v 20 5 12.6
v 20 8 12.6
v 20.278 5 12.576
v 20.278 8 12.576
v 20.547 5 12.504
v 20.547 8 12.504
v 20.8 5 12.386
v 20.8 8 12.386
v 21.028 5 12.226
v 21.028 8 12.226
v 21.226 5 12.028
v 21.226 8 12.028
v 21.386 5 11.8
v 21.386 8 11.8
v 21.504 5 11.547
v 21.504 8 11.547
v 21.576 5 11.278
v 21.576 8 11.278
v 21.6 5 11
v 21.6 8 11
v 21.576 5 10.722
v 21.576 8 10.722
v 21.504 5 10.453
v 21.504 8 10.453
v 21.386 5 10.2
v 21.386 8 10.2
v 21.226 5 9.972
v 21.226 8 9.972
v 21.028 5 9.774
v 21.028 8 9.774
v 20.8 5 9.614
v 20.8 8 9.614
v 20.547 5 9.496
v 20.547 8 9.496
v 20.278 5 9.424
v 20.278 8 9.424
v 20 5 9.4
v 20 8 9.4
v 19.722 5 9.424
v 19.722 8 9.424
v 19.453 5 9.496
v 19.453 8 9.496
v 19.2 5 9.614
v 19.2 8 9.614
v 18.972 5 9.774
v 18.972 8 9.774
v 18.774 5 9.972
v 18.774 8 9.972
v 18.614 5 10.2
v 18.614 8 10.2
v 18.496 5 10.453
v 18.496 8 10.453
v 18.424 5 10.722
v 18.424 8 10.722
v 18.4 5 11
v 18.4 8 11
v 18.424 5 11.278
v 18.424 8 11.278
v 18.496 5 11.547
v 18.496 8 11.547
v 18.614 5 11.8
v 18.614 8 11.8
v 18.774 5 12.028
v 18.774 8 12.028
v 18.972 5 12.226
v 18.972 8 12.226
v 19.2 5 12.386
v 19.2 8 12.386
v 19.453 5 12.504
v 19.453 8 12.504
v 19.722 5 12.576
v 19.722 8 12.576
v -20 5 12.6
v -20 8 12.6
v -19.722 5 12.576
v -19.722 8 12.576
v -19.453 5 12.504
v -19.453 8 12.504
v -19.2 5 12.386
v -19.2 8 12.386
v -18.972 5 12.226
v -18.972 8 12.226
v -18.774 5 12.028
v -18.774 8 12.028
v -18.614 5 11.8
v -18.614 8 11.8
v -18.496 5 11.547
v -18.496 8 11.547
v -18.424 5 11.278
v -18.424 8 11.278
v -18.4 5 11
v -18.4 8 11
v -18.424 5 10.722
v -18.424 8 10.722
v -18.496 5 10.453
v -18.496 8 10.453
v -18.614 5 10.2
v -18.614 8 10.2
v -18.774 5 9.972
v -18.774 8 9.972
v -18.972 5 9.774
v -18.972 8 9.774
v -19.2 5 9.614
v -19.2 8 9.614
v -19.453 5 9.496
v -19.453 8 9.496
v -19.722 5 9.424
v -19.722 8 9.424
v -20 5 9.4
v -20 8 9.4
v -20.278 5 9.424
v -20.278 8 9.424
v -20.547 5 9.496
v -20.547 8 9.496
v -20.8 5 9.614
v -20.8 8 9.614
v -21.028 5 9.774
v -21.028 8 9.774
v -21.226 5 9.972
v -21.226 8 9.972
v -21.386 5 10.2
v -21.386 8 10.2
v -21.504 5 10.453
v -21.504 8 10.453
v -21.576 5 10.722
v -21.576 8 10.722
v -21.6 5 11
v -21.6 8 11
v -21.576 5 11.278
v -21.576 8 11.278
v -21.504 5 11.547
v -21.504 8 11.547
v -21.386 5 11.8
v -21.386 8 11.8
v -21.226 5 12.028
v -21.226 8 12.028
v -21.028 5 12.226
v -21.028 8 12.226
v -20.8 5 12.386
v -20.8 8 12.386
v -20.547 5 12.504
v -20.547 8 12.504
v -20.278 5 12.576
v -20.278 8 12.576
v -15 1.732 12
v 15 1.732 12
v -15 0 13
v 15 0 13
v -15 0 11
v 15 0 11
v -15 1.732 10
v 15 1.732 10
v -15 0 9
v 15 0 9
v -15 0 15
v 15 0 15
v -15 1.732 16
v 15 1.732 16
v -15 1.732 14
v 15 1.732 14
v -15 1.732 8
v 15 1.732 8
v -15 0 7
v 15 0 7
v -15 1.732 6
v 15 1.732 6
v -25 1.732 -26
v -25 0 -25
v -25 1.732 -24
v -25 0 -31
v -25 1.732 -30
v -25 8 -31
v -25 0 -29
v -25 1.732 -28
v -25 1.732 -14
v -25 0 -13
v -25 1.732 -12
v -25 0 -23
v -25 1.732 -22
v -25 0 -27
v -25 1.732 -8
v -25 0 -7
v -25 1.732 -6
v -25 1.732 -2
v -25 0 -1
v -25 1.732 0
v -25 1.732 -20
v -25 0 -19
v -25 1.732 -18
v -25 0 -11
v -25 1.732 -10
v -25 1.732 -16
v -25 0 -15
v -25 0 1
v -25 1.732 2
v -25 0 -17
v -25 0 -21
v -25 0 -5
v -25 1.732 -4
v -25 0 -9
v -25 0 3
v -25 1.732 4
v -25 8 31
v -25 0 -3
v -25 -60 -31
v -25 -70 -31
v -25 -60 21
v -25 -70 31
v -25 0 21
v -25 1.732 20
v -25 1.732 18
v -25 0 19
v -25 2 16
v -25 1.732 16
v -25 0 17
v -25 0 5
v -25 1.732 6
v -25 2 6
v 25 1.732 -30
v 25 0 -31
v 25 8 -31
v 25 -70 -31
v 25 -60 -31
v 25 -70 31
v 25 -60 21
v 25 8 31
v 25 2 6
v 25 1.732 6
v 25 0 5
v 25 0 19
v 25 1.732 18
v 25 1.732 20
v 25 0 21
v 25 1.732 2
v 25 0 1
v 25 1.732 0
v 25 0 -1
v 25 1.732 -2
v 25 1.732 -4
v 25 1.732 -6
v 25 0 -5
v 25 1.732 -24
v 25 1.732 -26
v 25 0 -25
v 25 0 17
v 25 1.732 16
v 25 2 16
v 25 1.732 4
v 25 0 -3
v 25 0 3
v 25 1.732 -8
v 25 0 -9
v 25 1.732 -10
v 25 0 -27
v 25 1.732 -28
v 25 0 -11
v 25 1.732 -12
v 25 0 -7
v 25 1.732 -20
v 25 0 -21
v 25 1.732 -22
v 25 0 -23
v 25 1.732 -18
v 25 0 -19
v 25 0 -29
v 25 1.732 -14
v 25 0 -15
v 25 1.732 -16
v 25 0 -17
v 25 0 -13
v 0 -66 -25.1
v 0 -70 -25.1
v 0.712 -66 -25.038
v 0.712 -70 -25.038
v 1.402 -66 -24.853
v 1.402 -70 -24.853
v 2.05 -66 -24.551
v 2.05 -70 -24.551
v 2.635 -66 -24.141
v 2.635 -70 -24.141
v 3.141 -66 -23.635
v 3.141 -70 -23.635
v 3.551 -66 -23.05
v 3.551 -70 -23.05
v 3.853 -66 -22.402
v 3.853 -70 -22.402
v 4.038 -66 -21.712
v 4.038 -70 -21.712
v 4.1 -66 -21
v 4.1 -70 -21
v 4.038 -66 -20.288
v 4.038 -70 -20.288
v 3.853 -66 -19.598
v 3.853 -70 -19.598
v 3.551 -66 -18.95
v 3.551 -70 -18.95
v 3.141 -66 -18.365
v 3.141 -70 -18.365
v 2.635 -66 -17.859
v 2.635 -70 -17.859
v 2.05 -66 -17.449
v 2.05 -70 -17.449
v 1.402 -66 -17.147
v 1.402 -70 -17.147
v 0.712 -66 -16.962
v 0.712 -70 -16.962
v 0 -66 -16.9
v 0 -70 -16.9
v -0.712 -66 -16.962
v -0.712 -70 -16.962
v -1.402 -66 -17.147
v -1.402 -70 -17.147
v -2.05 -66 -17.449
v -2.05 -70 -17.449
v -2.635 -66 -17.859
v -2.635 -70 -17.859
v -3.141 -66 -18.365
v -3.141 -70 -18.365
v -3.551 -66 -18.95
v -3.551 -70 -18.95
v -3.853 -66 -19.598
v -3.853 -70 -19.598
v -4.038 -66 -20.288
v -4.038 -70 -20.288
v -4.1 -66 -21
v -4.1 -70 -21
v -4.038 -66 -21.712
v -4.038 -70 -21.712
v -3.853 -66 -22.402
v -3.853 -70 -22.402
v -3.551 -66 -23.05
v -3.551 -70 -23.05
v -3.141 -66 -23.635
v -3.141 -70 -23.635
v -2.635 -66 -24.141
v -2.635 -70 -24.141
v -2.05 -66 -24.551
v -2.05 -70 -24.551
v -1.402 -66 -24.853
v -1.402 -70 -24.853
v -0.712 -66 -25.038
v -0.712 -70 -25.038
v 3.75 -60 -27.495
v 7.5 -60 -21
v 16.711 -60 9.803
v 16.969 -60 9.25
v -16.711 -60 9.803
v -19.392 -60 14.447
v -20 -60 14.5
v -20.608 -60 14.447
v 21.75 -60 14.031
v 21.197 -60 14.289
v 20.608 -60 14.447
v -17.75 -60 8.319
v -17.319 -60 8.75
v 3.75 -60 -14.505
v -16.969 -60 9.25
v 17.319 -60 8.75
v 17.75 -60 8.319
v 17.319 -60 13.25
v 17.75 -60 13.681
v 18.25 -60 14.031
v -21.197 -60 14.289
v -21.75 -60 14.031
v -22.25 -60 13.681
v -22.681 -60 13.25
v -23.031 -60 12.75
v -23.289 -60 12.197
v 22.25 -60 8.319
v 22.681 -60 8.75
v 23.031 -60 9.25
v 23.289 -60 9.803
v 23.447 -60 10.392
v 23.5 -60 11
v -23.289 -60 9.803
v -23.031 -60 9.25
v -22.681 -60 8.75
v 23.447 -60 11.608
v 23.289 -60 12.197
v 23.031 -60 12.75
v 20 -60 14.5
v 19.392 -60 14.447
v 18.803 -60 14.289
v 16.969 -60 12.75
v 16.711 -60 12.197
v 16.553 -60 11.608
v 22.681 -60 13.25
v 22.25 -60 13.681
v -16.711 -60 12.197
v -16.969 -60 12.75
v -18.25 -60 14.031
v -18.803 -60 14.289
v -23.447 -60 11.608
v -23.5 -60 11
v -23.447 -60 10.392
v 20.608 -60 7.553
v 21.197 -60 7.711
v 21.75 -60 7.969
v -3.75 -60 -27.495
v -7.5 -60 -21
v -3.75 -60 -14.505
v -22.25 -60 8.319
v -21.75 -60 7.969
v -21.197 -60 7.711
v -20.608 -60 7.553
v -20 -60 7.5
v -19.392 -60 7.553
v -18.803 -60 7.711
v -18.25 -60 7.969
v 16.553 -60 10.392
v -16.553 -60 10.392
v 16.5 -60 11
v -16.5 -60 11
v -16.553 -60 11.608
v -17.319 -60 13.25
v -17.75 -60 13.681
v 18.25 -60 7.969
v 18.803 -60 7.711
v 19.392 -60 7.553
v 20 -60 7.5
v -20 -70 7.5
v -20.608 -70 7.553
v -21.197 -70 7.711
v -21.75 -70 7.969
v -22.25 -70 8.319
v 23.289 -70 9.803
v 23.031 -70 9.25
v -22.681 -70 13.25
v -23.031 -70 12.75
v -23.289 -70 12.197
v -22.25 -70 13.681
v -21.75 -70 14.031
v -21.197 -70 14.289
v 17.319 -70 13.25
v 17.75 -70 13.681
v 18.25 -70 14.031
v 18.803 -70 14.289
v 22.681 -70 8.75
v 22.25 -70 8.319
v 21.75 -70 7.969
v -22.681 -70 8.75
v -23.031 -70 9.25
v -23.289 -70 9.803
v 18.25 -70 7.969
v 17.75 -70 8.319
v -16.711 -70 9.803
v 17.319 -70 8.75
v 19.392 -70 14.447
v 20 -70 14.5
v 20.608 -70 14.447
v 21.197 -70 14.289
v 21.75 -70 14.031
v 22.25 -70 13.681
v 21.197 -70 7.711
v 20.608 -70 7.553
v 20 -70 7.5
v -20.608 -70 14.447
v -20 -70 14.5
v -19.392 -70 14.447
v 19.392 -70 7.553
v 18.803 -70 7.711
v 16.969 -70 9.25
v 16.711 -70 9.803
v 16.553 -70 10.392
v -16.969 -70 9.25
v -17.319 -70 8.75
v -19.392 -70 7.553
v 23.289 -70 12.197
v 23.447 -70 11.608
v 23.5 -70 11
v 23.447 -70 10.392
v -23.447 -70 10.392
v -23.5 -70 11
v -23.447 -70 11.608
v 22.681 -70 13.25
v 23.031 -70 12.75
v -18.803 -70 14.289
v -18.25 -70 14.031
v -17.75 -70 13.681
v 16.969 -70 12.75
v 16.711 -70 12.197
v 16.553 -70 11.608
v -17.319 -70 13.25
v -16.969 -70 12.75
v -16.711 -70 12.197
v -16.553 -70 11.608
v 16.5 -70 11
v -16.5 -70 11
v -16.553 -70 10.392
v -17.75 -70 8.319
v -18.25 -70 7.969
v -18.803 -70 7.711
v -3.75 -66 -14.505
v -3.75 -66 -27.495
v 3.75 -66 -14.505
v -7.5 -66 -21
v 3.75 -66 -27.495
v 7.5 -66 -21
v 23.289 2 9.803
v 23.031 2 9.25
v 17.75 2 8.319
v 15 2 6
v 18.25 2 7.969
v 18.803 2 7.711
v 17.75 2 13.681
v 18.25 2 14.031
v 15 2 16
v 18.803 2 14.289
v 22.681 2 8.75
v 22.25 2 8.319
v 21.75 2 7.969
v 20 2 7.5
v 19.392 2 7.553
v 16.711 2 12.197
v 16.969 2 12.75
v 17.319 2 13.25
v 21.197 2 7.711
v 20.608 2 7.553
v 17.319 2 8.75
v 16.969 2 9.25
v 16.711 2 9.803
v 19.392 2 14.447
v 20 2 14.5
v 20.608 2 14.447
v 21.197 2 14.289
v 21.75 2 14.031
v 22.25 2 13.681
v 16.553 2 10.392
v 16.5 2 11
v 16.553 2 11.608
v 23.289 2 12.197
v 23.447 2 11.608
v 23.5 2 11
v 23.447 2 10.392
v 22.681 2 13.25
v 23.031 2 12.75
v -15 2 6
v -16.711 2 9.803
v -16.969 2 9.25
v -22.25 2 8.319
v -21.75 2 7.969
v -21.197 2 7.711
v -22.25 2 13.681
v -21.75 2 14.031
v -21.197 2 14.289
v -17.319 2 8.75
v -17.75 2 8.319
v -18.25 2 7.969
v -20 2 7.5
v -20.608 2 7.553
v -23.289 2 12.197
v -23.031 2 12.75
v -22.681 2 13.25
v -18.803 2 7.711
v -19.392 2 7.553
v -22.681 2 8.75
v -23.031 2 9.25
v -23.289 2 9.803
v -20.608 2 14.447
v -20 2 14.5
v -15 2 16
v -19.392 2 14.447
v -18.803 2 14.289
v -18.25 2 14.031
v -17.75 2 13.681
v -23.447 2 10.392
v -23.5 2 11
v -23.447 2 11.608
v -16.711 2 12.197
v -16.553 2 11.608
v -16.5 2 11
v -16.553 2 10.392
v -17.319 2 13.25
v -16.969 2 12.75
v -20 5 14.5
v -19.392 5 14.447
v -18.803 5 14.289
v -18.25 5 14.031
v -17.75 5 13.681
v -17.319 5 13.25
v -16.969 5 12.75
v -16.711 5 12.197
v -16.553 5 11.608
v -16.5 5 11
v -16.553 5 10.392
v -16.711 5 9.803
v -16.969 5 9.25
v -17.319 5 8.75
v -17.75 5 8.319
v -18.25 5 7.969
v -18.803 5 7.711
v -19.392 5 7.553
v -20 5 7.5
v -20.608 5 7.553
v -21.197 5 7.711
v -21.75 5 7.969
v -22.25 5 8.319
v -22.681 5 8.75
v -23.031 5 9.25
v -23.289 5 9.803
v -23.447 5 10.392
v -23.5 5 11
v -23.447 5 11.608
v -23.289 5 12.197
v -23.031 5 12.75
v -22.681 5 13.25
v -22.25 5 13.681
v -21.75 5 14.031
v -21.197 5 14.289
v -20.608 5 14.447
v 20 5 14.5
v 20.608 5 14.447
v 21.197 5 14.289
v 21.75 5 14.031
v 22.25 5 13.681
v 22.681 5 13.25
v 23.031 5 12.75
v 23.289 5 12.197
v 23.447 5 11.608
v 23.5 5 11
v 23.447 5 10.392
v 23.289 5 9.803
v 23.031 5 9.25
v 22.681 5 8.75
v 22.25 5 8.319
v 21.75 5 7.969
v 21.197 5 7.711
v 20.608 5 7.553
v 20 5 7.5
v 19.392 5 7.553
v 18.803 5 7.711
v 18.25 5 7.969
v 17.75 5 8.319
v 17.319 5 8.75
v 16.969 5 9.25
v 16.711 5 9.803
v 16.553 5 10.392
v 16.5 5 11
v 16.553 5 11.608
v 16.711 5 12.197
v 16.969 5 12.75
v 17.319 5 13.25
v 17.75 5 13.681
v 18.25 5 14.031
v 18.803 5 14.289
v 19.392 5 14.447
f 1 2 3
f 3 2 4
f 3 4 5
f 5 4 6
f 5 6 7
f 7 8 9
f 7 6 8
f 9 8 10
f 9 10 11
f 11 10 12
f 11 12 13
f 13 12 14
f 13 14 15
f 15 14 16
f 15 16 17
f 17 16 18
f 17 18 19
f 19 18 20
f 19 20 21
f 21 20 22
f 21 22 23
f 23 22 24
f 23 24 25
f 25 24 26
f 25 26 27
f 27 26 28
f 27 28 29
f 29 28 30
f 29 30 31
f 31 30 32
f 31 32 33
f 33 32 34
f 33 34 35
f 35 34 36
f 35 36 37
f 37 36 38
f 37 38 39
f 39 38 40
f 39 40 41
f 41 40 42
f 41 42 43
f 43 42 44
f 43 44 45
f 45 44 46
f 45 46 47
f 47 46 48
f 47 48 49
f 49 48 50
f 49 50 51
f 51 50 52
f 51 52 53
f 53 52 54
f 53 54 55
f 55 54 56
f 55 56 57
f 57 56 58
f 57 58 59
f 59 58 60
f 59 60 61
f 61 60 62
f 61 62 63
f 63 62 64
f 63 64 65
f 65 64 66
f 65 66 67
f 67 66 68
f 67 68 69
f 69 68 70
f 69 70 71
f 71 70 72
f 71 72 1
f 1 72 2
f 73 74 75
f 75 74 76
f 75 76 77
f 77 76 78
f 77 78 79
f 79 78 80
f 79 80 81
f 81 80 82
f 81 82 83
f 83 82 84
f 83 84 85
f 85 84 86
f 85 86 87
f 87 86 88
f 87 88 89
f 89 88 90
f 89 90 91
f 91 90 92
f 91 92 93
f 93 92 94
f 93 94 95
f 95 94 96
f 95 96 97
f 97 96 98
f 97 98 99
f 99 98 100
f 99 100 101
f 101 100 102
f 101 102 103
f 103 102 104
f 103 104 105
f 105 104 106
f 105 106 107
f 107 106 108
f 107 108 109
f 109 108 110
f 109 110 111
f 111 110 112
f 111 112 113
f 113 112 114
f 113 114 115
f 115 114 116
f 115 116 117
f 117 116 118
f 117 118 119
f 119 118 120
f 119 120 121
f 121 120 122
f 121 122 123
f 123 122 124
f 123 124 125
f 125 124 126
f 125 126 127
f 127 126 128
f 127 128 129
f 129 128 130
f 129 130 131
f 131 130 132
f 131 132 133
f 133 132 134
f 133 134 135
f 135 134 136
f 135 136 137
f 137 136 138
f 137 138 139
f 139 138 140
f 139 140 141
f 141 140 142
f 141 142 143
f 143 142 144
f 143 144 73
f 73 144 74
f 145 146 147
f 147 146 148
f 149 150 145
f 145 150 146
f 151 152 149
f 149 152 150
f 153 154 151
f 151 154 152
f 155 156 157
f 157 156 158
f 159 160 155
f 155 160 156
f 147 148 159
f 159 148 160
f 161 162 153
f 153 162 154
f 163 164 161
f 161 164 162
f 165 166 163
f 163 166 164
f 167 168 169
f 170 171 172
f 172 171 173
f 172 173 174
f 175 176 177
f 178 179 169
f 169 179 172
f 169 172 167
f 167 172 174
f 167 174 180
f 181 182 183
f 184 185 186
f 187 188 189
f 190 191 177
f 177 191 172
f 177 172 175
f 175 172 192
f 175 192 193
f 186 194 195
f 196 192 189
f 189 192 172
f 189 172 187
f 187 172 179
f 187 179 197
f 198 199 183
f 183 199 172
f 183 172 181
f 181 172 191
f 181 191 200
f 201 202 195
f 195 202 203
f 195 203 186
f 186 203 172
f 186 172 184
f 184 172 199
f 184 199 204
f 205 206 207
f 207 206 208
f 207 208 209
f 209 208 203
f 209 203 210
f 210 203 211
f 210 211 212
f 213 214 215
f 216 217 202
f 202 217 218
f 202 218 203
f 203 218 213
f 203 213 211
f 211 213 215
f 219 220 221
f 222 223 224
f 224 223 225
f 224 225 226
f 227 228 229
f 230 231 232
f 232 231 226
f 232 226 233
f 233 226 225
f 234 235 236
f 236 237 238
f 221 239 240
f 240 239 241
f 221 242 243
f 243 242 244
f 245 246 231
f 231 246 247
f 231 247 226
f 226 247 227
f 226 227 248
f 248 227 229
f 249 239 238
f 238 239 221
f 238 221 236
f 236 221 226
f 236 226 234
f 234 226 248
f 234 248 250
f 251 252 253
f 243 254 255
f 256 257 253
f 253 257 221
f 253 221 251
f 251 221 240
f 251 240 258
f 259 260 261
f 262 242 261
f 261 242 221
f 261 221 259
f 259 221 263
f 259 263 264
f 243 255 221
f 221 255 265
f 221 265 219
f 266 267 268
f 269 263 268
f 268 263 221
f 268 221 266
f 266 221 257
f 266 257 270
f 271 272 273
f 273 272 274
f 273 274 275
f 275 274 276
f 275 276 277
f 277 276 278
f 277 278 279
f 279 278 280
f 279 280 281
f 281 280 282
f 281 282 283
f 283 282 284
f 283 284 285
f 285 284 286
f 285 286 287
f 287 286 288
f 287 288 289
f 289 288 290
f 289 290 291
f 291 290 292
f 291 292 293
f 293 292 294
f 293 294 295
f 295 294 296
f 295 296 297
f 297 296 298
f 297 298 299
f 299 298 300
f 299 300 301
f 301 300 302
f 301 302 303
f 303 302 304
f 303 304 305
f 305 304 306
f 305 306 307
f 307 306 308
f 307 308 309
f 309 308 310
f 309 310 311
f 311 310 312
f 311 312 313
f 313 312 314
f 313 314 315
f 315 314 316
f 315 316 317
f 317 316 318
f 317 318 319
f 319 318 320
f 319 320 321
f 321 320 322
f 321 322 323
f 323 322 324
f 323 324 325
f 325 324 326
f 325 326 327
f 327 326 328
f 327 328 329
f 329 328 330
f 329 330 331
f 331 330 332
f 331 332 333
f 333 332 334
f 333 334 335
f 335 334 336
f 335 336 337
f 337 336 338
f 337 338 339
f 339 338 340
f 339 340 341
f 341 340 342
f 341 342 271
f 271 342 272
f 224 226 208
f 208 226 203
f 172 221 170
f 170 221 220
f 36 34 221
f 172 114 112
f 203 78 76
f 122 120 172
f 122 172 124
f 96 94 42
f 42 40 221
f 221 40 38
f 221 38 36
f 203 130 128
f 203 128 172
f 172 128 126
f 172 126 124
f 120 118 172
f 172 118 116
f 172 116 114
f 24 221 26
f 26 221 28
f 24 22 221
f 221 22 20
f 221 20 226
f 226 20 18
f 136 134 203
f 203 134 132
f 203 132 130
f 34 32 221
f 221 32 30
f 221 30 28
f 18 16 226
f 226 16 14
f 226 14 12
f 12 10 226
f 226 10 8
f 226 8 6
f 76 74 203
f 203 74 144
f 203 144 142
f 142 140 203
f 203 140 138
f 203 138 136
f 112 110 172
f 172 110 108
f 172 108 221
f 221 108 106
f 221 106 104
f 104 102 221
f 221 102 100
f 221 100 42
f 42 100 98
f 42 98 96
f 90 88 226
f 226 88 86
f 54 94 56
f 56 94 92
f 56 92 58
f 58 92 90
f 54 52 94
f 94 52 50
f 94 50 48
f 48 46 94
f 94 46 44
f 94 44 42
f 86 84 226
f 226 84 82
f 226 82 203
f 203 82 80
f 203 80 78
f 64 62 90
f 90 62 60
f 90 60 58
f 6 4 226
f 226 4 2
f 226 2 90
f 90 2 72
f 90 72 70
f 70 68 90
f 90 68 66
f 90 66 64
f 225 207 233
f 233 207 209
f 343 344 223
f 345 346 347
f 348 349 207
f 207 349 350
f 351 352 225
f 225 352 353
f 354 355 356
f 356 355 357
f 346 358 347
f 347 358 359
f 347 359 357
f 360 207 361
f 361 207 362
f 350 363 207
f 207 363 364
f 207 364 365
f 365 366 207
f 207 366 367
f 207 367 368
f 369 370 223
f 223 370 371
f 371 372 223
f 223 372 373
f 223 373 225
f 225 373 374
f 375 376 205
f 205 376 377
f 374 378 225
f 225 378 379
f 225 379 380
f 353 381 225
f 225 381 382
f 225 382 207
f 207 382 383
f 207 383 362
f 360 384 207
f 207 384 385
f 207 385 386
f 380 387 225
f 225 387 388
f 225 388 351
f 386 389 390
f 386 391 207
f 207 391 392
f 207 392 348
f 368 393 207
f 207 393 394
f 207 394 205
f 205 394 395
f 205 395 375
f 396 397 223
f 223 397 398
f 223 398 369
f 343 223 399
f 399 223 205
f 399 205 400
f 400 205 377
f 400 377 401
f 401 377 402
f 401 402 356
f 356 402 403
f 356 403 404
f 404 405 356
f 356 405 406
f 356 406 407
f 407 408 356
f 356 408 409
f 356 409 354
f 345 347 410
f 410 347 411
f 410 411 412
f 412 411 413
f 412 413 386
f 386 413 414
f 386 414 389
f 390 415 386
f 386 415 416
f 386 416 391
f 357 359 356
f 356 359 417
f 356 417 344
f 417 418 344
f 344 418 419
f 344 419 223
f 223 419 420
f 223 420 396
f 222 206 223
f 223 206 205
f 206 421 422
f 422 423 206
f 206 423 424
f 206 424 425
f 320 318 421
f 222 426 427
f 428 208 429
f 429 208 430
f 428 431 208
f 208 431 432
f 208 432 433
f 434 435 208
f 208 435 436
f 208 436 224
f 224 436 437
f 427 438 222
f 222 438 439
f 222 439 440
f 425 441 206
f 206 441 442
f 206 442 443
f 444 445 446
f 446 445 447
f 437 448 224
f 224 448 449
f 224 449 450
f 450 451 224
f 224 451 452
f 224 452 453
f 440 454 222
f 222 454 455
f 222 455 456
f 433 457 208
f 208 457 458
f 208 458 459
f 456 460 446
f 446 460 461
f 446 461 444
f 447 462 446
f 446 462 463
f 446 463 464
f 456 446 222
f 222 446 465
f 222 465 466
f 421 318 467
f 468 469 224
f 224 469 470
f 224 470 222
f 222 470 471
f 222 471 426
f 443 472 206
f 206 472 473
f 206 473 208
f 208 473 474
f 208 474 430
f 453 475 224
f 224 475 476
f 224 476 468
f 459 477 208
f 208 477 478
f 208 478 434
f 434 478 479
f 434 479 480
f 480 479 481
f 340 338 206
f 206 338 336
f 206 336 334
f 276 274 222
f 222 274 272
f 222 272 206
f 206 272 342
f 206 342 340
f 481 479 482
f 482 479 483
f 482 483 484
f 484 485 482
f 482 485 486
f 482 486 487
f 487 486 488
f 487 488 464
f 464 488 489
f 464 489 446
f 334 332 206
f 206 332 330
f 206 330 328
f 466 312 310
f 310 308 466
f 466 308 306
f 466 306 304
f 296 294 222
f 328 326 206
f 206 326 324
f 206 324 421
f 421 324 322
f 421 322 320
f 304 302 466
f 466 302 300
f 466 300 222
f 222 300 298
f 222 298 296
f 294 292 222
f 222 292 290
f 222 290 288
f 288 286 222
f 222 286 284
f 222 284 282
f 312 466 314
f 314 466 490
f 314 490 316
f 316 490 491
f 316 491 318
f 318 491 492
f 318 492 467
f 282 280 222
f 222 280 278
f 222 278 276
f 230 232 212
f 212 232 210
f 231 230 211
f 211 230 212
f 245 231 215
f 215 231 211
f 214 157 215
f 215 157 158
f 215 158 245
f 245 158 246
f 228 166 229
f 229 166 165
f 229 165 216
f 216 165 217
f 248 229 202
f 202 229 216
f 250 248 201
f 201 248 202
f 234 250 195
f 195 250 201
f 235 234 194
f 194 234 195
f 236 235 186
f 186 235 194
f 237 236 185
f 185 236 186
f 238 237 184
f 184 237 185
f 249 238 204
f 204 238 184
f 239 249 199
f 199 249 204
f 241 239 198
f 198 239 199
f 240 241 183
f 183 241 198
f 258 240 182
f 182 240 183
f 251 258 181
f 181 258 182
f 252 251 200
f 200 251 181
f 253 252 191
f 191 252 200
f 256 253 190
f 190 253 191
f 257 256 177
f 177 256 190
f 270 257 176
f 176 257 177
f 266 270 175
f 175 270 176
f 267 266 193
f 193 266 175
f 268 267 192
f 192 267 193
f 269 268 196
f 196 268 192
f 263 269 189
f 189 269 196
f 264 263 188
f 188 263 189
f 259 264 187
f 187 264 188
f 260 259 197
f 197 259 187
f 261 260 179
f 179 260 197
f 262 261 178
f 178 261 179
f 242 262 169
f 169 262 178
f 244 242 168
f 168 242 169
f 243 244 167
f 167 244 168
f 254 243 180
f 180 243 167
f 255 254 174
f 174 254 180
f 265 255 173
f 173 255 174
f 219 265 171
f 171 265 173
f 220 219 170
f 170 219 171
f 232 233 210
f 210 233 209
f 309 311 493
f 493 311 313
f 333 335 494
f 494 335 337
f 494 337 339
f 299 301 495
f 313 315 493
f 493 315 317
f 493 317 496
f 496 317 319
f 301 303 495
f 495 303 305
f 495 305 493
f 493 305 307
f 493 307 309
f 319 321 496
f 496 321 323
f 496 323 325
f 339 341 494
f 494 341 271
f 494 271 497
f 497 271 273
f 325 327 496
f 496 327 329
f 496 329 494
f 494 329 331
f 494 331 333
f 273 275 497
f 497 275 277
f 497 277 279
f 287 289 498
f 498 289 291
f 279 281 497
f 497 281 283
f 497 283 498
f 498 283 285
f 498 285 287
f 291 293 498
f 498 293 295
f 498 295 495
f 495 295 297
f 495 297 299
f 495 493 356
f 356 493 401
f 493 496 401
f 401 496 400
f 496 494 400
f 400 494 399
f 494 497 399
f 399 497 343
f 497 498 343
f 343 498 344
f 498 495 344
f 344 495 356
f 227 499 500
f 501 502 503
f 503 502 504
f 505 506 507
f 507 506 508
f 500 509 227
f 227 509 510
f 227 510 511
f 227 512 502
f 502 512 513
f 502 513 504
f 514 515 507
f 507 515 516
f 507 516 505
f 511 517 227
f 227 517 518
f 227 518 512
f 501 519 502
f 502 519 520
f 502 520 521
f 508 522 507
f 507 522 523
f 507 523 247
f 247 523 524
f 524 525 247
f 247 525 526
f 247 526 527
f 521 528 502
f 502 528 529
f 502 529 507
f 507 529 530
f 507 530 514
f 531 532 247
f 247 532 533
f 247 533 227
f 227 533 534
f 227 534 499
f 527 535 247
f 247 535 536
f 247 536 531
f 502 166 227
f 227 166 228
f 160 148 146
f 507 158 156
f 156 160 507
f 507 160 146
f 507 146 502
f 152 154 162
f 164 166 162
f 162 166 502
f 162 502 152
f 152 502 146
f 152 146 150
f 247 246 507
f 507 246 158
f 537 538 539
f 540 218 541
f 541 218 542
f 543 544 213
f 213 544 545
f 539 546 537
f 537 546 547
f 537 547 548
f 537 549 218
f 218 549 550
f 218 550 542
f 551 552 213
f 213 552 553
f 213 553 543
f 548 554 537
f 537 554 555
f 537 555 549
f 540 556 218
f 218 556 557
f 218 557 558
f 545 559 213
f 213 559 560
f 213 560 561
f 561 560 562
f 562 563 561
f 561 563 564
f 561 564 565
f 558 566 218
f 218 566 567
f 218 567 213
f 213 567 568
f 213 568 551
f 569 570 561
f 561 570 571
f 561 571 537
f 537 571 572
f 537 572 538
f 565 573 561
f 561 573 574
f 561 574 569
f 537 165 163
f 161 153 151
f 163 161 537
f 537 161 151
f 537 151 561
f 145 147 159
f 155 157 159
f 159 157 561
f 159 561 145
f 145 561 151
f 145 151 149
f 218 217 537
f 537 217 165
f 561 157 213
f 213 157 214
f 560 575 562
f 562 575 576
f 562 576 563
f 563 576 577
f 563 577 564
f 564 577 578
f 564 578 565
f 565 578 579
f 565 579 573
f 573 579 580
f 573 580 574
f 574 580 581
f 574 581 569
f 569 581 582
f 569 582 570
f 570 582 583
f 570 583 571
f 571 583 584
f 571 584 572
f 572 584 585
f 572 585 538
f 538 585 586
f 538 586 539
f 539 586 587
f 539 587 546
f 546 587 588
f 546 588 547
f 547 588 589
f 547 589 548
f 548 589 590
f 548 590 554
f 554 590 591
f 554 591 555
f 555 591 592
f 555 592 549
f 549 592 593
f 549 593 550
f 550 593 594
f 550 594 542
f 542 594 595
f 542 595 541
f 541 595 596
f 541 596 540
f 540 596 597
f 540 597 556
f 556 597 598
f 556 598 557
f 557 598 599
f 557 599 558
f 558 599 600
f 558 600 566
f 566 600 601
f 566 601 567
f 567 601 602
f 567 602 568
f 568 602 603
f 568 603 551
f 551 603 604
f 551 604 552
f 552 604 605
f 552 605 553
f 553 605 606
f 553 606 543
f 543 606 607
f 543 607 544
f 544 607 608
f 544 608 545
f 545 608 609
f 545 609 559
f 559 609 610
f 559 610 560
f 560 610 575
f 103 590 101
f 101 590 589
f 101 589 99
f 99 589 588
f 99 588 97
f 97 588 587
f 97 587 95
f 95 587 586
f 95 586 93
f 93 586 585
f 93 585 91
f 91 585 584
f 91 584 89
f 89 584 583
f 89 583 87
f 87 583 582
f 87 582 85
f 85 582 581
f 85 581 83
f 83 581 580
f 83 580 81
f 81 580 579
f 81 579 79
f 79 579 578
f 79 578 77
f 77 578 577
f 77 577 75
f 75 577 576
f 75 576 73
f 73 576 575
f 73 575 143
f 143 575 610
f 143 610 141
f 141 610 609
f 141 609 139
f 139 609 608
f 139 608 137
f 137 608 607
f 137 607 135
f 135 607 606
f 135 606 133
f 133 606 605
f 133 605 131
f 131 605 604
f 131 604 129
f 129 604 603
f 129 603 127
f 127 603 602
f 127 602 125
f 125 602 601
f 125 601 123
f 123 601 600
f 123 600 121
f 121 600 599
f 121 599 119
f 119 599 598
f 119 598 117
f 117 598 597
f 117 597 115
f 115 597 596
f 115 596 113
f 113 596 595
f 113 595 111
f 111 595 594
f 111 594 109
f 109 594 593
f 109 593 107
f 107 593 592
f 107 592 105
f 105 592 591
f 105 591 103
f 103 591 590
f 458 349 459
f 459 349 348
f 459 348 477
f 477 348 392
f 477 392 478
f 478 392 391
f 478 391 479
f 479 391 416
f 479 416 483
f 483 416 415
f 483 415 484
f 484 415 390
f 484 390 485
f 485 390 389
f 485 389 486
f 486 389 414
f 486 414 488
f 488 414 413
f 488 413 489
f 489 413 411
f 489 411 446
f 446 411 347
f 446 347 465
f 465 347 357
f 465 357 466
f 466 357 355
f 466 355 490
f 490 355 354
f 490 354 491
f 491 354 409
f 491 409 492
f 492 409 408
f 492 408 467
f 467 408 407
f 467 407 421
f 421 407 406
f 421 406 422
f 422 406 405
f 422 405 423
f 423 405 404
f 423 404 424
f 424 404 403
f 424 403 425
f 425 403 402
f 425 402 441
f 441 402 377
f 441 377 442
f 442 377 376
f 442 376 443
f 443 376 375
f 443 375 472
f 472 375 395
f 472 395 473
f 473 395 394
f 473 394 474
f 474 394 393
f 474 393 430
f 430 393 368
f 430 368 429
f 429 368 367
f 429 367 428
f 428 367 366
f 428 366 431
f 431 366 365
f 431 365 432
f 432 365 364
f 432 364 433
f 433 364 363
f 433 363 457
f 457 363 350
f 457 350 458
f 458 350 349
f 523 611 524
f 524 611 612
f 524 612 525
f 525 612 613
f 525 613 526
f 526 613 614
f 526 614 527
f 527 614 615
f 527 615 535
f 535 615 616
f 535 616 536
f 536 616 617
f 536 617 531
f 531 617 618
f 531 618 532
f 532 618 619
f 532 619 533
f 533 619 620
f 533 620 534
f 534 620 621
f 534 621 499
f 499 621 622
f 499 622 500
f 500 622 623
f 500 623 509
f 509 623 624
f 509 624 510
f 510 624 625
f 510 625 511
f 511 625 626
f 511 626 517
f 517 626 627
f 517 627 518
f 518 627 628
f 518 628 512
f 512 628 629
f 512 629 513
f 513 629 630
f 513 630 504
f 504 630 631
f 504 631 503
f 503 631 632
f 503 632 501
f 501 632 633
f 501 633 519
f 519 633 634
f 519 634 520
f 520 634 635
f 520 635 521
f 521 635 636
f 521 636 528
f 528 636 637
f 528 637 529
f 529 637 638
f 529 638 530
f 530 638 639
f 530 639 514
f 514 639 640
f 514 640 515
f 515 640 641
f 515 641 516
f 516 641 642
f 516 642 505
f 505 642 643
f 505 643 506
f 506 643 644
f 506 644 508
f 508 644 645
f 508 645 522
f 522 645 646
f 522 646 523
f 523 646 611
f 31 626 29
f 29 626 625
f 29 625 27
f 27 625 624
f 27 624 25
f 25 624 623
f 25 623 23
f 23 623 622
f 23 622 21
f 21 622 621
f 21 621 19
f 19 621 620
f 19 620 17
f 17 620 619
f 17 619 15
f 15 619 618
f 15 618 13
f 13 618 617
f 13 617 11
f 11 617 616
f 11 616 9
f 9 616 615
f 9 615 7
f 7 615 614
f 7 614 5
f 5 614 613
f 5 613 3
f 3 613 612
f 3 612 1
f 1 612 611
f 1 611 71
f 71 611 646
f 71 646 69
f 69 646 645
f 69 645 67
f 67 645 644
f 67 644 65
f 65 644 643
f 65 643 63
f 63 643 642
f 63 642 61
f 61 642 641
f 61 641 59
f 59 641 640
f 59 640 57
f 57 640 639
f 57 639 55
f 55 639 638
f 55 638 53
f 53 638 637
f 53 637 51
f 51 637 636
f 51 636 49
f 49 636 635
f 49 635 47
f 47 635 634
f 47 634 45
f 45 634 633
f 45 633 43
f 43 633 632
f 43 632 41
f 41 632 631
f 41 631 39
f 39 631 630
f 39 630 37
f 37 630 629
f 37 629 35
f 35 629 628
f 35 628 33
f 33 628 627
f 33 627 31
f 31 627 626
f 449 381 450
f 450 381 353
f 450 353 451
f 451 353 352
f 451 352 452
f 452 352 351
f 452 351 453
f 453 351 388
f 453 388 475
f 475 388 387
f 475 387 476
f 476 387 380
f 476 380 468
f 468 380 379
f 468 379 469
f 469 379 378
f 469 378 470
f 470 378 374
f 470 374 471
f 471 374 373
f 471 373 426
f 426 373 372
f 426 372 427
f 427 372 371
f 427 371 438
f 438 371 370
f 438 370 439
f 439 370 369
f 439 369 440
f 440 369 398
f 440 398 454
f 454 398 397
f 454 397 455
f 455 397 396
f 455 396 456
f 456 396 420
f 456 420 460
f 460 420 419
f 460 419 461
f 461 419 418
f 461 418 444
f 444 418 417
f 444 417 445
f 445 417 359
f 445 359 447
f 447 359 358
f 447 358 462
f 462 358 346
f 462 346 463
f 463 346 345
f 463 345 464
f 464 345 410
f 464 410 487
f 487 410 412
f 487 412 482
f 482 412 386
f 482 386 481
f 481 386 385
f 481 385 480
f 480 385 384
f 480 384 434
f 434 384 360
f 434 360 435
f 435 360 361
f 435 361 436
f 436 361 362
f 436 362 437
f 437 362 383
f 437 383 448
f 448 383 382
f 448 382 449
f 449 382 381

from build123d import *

# Parameters (mm, degrees)
SKETCH1_W               = 50
SKETCH1_H               = 62
BOSS_EXTRUDE1_DEPTH     = 8
SKETCH2_R               = 1.6
CUT_EXTRUDE1_DEPTH      = 41.620192023
SKETCH4_W               = 50
SKETCH4_H               = 10
BOSS_EXTRUDE2_DEPTH     = 60
SKETCH5_W               = 50
SKETCH5_H               = 62
BOSS_EXTRUDE3_DEPTH     = 10
SKETCH6_R               = 4.1
CUT_EXTRUDE3_DEPTH      = 10
CUT_EXTRUDE4_START      = -50
CUT_EXTRUDE4_DEPTH      = 50
CUT_EXTRUDE6_DEPTH      = 6
CUT_EXTRUDE7_START      = -8
SKETCH10_W              = 10
SKETCH10_H              = 10
CUT_EXTRUDE7_DEPTH      = 2
CUT_EXTRUDE8_DEPTH      = 83.280009723
CUT_EXTRUDE8_DEPTH_BACK = 3
SKETCH11_R              = 3.5


# Read off the part's stored shape, not the designer's step: Cut-Extrude4
with BuildPart() as part:
    # Sketch1 → Boss-Extrude1 (new body)
    with BuildSketch(Plane(origin=(0, 0, 0), x_dir=(1, 0, 0), z_dir=(0, 1, 0))):
        Rectangle(SKETCH1_W, SKETCH1_H)
    extrude(amount=BOSS_EXTRUDE1_DEPTH)

    # Sketch2 → Cut-Extrude1 (cut, through all)
    with BuildSketch(Plane(origin=(0, 8, 0), x_dir=(1, 0, 0), z_dir=(0, 1, 0))):
        with Locations(Location((-20, -11, 0), (0, 0, 270))):
            Circle(SKETCH2_R)
        with Locations(Location((20, -11, 0), (0, 0, 270))):
            Circle(SKETCH2_R)
    extrude(amount=-CUT_EXTRUDE1_DEPTH, mode=Mode.SUBTRACT)

    # Sketch4 → Boss-Extrude2 (add)
    with BuildSketch(Plane.XZ):
        with Locations((0, 26)):
            Rectangle(SKETCH4_W, SKETCH4_H)
    extrude(amount=BOSS_EXTRUDE2_DEPTH)

    # Sketch5 → Boss-Extrude3 (add)
    with BuildSketch(Plane.XZ.offset(60)):
        Rectangle(SKETCH5_W, SKETCH5_H)
    extrude(amount=BOSS_EXTRUDE3_DEPTH)

    # Sketch6 → Cut-Extrude3 (cut)
    with BuildSketch(Plane.XZ.offset(70)):
        with Locations(Location((0, -21, 0), (0, 0, 270))):
            Circle(SKETCH6_R)
    extrude(amount=-CUT_EXTRUDE3_DEPTH, mode=Mode.SUBTRACT)

    # Cut-Extrude4 outline → Cut-Extrude4 (cut)
    with BuildSketch(Plane.ZY.offset(25).offset(CUT_EXTRUDE4_START)):
        Polygon((20, 1.732050808), (19, 0), (21, 0), align=None)
        Polygon((18, 1.732050808), (17, 0), (19, 0), align=None)
        Polygon((16, 1.732050808), (15, 0), (17, 0), align=None)
        Polygon((14, 1.732050808), (13, 0), (15, 0), align=None)
        Polygon((-31, 0), (-29, 0), (-30, 1.732050808), align=None)
        Polygon((-29, 0), (-27, 0), (-28, 1.732050808), align=None)
        Polygon((-27, 0), (-25, 0), (-26, 1.732050808), align=None)
        Polygon((-25, 0), (-23, 0), (-24, 1.732050808), align=None)
        Polygon((-23, 0), (-21, 0), (-22, 1.732050808), align=None)
        Polygon((-21, 0), (-19, 0), (-20, 1.732050808), align=None)
        Polygon((-19, 0), (-17, 0), (-18, 1.732050808), align=None)
        Polygon((-17, 0), (-15, 0), (-16, 1.732050808), align=None)
        Polygon((-15, 0), (-13, 0), (-14, 1.732050808), align=None)
        Polygon((-13, 0), (-11, 0), (-12, 1.732050808), align=None)
        Polygon((-11, 0), (-9, 0), (-10, 1.732050808), align=None)
        Polygon((-9, 0), (-7, 0), (-8, 1.732050808), align=None)
        Polygon((-7, 0), (-5, 0), (-6, 1.732050808), align=None)
        Polygon((-5, 0), (-3, 0), (-4, 1.732050808), align=None)
        Polygon((-3, 0), (-1, 0), (-2, 1.732050808), align=None)
        Polygon((-1, 0), (1, 0), (0, 1.732050808), align=None)
        Polygon((1, 0), (3, 0), (2, 1.732050808), align=None)
        Polygon((3, 0), (5, 0), (4, 1.732050808), align=None)
        Polygon((5, 0), (7, 0), (6, 1.732050808), align=None)
        Polygon((7, 0), (9, 0), (8, 1.732050808), align=None)
        Polygon((9, 0), (11, 0), (10, 1.732050808), align=None)
        Polygon((13, 0), (12, 1.732050808), (11, 0), align=None)
    extrude(amount=CUT_EXTRUDE4_DEPTH, mode=Mode.SUBTRACT)

    # Sketch9 → Cut-Extrude6 (cut)
    with BuildSketch(Plane(origin=(0, -60, 0), x_dir=(1, 0, 0), z_dir=(0, 1, 0))):
        Polygon((3.75, 14.504809472), (7.5, 21), (3.75, 27.495190528), (-3.75, 27.495190528), (-7.5, 21), (-3.75, 14.504809472), align=None)
    extrude(amount=-CUT_EXTRUDE6_DEPTH, mode=Mode.SUBTRACT)

    # Sketch10 → Cut-Extrude7 (cut)
    with BuildSketch(Plane(origin=(0, 8, 0), x_dir=(1, 0, 0), z_dir=(0, 1, 0)).offset(CUT_EXTRUDE7_START)):
        with Locations((20, -11)):
            Rectangle(SKETCH10_W, SKETCH10_H)
        with Locations((-20, -11)):
            Rectangle(SKETCH10_W, SKETCH10_H)
    extrude(amount=CUT_EXTRUDE7_DEPTH, mode=Mode.SUBTRACT)

    # Sketch11 → Cut-Extrude8 (cut, two sides: drawn at the far end of the back side and taken through both)
    with BuildSketch(Plane.XZ.offset(-2).offset(-CUT_EXTRUDE8_DEPTH_BACK)):
        with Locations(Location((-20, 11, 0), (0, 0, 90))):
            Circle(SKETCH11_R)
        with Locations(Location((20, 11, 0), (0, 0, 90))):
            Circle(SKETCH11_R)
    extrude(amount=CUT_EXTRUDE8_DEPTH + CUT_EXTRUDE8_DEPTH_BACK, mode=Mode.SUBTRACT)


solid = part.part
